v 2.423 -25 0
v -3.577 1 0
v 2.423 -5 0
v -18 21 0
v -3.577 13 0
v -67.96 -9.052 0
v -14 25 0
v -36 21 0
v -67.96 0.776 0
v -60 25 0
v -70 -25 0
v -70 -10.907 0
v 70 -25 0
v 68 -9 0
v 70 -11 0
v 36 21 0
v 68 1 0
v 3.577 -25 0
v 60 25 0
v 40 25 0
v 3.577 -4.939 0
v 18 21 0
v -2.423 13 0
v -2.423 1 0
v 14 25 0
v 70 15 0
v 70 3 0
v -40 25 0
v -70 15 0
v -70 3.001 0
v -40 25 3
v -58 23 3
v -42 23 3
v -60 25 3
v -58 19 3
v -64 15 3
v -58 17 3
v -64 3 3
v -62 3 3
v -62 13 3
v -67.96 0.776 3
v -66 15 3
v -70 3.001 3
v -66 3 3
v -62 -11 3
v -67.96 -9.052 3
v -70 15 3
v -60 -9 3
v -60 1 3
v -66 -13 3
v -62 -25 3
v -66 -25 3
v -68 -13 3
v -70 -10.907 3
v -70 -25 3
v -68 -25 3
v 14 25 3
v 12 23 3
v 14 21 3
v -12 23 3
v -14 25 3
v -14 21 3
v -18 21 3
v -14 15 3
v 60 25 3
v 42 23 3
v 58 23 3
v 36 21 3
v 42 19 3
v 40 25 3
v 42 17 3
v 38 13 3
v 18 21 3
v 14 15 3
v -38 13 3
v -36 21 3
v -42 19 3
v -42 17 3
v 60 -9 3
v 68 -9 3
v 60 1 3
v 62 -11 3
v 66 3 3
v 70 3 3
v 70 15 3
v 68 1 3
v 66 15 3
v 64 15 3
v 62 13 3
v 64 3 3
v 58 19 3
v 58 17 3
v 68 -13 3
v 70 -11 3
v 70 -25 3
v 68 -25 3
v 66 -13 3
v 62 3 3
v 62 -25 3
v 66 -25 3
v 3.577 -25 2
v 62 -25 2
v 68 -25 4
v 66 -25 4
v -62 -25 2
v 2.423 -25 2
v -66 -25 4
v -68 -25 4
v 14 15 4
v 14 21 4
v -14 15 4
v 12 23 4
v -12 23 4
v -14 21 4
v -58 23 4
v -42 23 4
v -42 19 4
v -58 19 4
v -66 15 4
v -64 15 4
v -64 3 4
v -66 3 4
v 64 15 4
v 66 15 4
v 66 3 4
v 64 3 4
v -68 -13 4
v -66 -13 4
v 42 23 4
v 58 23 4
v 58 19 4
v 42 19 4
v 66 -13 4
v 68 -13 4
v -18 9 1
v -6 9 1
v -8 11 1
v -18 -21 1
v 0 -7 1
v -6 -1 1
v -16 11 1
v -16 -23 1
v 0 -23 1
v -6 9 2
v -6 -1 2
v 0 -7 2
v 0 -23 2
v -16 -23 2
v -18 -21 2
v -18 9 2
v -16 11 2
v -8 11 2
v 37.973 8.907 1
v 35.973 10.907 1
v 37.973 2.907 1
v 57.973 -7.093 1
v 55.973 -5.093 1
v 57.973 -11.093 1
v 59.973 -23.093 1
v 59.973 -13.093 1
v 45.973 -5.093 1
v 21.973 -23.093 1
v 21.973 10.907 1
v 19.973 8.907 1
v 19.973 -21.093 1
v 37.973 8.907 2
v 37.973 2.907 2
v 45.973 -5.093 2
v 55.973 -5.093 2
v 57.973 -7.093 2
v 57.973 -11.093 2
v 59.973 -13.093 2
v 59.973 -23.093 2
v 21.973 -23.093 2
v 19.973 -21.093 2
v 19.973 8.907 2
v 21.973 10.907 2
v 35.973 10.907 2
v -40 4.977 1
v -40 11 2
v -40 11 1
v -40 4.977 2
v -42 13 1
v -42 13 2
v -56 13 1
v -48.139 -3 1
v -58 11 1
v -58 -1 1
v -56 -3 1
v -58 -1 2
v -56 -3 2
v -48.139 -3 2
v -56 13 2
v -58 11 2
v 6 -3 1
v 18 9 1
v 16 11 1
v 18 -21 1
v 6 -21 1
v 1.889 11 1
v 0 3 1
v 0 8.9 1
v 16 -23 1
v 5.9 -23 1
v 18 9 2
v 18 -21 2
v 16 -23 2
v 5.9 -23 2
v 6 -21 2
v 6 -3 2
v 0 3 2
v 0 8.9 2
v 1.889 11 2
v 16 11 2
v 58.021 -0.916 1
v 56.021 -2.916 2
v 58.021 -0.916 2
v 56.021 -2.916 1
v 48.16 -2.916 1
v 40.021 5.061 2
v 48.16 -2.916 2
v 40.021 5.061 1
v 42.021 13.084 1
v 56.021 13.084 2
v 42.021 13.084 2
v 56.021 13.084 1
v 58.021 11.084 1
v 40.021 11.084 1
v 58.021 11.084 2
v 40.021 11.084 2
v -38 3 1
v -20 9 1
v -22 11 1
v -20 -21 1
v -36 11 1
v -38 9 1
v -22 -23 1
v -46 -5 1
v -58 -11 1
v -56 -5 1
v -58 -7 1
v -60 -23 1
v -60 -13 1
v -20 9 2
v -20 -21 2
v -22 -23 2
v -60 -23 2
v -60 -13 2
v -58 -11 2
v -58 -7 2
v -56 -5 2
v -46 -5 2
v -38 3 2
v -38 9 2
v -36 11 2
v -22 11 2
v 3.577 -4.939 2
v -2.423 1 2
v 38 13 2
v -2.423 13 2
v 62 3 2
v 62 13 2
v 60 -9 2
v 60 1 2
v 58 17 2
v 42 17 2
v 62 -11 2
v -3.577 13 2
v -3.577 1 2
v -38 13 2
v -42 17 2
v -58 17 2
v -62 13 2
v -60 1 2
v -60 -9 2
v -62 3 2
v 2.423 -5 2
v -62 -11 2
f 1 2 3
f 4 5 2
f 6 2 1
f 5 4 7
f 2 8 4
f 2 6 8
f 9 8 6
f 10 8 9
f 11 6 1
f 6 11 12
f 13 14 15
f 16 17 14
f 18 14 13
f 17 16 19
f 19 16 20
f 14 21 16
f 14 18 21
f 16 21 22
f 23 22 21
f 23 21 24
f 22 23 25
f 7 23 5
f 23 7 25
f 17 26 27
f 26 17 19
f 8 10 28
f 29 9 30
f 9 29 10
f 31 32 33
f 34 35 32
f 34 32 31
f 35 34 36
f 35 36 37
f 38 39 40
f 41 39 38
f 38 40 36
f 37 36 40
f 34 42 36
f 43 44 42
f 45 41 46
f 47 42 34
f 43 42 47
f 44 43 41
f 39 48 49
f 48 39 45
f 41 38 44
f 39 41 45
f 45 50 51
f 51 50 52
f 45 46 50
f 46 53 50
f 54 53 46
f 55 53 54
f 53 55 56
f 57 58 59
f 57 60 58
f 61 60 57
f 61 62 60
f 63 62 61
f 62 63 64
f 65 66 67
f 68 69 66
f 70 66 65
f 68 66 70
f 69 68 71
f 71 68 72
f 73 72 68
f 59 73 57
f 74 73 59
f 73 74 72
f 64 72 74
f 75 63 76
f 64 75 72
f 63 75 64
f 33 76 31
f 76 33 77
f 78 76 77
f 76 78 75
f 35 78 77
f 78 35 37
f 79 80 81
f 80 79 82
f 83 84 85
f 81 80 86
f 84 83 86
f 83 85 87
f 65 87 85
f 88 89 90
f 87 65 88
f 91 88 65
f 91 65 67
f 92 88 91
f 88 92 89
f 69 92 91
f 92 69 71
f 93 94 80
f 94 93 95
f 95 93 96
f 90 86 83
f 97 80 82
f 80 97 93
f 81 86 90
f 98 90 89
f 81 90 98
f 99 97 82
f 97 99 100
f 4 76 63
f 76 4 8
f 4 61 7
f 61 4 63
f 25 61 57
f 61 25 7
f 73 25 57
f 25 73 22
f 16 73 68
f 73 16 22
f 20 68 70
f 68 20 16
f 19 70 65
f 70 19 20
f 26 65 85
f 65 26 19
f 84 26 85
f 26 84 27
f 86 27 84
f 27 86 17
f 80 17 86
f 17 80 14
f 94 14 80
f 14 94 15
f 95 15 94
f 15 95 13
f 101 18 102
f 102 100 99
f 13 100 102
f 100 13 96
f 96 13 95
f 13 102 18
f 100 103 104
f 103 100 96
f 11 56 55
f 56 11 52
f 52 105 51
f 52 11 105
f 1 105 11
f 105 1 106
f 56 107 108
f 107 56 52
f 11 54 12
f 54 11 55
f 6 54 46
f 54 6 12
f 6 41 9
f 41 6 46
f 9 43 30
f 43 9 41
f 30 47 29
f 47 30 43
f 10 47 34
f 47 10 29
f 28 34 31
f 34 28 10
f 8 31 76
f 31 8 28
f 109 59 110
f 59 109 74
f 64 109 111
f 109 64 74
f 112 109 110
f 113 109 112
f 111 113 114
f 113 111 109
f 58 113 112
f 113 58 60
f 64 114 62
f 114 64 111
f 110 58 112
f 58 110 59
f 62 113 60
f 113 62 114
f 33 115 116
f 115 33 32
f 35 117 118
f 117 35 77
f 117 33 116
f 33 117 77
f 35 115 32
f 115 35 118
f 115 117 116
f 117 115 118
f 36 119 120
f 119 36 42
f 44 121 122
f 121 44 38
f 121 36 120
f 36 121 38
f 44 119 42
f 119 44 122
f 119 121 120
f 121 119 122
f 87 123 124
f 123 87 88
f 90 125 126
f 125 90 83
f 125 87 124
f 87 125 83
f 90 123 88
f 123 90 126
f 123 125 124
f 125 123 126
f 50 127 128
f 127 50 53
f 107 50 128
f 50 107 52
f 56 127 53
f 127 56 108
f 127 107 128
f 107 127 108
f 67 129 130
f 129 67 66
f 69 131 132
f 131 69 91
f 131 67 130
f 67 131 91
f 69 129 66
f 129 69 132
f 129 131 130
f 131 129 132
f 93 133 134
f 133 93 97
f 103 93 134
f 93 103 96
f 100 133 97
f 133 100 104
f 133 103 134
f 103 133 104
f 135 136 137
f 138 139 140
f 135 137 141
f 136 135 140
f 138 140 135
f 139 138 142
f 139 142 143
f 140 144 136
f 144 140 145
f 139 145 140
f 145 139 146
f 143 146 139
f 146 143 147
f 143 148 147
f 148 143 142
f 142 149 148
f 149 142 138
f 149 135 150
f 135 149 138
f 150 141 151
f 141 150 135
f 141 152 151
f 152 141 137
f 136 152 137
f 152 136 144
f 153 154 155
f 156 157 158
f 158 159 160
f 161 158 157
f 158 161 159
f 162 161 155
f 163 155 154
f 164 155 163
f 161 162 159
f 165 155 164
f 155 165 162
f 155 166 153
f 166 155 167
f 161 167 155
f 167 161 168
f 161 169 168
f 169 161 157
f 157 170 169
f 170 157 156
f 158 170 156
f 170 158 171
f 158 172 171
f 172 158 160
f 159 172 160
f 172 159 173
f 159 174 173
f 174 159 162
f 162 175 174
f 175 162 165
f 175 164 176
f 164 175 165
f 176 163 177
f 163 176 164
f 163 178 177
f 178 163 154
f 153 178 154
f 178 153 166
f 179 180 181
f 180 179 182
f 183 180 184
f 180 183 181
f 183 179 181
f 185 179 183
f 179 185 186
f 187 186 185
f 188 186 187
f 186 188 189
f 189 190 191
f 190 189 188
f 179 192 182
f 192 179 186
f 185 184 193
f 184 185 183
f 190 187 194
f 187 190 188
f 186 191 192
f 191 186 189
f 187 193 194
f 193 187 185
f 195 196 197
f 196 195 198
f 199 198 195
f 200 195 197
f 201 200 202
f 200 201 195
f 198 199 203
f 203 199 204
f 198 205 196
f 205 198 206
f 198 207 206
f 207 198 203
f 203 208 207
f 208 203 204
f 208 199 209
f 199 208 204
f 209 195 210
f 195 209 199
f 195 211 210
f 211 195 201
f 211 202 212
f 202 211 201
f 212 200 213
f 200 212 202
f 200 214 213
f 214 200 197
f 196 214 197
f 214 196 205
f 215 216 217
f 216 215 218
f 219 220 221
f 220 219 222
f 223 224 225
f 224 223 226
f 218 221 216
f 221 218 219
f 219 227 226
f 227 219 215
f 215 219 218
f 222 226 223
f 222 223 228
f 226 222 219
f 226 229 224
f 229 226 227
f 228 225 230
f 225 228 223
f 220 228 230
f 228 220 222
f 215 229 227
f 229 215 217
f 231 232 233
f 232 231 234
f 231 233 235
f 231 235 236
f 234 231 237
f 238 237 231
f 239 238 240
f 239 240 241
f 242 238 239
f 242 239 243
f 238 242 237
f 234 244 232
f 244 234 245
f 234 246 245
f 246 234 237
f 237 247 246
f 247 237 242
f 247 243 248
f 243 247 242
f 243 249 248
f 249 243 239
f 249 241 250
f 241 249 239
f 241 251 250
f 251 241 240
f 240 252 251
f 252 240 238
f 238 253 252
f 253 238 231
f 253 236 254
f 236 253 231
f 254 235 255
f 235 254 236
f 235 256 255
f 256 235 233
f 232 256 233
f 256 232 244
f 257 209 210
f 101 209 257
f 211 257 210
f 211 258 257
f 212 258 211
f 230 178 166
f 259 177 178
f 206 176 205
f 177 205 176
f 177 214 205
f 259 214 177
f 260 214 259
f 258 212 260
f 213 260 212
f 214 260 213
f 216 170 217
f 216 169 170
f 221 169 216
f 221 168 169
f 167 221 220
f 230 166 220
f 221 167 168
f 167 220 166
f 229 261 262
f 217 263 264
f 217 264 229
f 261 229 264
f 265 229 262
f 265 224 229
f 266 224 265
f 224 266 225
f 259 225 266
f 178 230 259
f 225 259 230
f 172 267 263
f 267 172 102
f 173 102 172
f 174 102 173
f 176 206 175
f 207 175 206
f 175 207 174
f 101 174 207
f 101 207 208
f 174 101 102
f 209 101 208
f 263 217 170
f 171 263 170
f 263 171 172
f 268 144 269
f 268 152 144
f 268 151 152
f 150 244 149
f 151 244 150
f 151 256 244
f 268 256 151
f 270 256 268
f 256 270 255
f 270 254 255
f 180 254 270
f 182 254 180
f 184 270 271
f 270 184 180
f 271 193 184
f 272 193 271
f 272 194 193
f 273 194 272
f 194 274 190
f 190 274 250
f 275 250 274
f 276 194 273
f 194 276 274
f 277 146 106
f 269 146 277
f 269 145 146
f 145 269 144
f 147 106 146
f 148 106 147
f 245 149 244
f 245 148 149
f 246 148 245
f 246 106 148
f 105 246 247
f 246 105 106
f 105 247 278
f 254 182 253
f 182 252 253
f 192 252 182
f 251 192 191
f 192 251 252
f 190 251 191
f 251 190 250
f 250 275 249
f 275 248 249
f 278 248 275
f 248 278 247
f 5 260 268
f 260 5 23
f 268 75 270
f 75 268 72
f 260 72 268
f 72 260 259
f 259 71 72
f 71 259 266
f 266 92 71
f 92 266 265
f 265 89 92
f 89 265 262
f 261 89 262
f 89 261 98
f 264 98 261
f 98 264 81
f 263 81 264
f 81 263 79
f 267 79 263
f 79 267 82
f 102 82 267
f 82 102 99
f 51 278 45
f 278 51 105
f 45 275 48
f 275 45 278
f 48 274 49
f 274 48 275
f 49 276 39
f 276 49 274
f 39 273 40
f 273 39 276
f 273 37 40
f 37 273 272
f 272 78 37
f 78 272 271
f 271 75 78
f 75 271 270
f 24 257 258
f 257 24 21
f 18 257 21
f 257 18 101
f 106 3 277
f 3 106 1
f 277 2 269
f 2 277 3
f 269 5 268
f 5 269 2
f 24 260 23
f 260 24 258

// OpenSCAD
// Module names are of the form poly_<inkscape-path-id>().  As a result,
// you can associate a polygon in this OpenSCAD program with the corresponding
// SVG element in the Inkscape document by looking for the XML element with
// the attribute id="inkscape-path-id".

// fudge value is used to ensure that subtracted solids are a tad taller
// in the z dimension than the polygon being subtracted from.  This helps
// keep the resulting .stl file manifold.
fudge = 0.1;

difference() {
   union() {
      poly_outline(3);
      poly_box2(4);
      poly_box1(4);
      poly_box7(4);
      poly_box4(4);
      poly_box6(4);
      poly_box3(4);
      poly_box5(4);
   }

   translate([0,0,2]) poly_doorinside(3);

   translate([0,0,1]) {
      poly_doordetail4(2);
      poly_doordetail2(2);
      poly_doordetail7(2);
      poly_doordetail3(2);
      poly_doordetail1(2);
      poly_doordetail5(2);
   }

   poly_doorsplit(2);
}


/* MODULES */

module poly_doordetail4(h)
{
  scale([25.4/90, -25.4/90, 1]) union()
  {
    linear_extrude(height=h)
      polygon([[-56.692915,-38.976395],[-63.779525,-31.889775],[-63.779525,74.409485],[-56.692915,81.496085],[-0.000005,81.496085],[-0.000005,24.803135],[-21.259845,3.543295],[-21.259845,-31.889775],[-28.346455,-38.976395]]);
  }
}

module poly_doorinside(h)
{
  scale([25.4/90, -25.4/90, 1]) union()
  {
    linear_extrude(height=h)
      polygon([[-219.685038,88.582685],[-219.685038,38.976385],[-212.598424,31.889755],[-212.598424,-3.543315],[-219.685038,-10.629935],[-219.685038,-46.063005],[-205.511810,-60.236235],[-148.818897,-60.236235],[-134.645665,-46.063005],[134.645665,-46.063005],[148.818895,-60.236235],[205.511805,-60.236235],[219.685035,-46.063005],[219.685035,-10.629935],[212.598425,-3.543315],[212.598425,31.889755],[219.685035,38.976385],[219.685035,88.582685]]);
  }
}

module poly_outline(h)
{
  scale([25.4/90, -25.4/90, 1]) union()
  {
    linear_extrude(height=h)
      polygon([[-248.031495,88.582685],[-248.031495,38.645685],[-240.803775,32.075025],[-240.803775,-2.749435],[-248.031495,-10.634225],[-248.031495,-53.149615],[-212.598424,-88.582685],[-141.732285,-88.582685],[-127.559055,-74.409465],[-63.779525,-74.409465],[-49.606295,-88.582685],[49.606295,-88.582685],[63.779525,-74.409465],[127.559055,-74.409465],[141.732285,-88.582685],[212.598425,-88.582685],[248.031495,-53.149615],[248.031495,-10.629935],[240.944875,-3.543315],[240.944875,31.889755],[248.031495,38.976385],[248.031495,88.582685]]);
  }
}

module poly_box2(h)
{
  scale([25.4/90, -25.4/90, 1]) union()
  {
    linear_extrude(height=h)
      polygon([[-49.606295,-74.409465],[-42.519685,-81.496075],[42.519685,-81.496075],[49.606295,-74.409465],[49.606295,-53.149615],[-49.606295,-53.149615]]);
  }
}

module poly_box1(h)
{
  scale([25.4/90, -25.4/90, 1]) union()
  {
    linear_extrude(height=h)
      polygon([[-205.511810,-81.496075],[-148.818897,-81.496075],[-148.818897,-67.322845],[-205.511810,-67.322845]]);
  }
}

module poly_doordetail2(h)
{
  scale([25.4/90, -25.4/90, 1]) union()
  {
    linear_extrude(height=h)
      polygon([[198.329035,18.047235],[205.415655,25.133845],[205.415655,39.307085],[212.502265,46.393685],[212.502265,81.826785],[77.856595,81.826785],[70.769985,74.740185],[70.769985,-31.559065],[77.856595,-38.645685],[127.462895,-38.645685],[134.549505,-31.559065],[134.549505,-10.299225],[162.895965,18.047235]]);
  }
}

module poly_doorsplit(h)
{
  scale([25.4/90, -25.4/90, 1]) union()
  {
    linear_extrude(height=h)
      polygon([[-14.173225 + 1.5, -46.063005],
               [-14.173225 + 1.5, -3.543315],
               [7.086615 + 1.5, 17.716525],
               [7.086615 + 1.5, 88.582685],
               [14.173225 - 1.5, 88.582685],
               [14.173225 - 1.5, 17.498855],
               [-7.086615 - 1.5, -3.543315],
               [-7.086615 - 1.5, -46.063005]]);
  }
}

module poly_box7(h)
{
  scale([25.4/90, -25.4/90, 1]) union()
  {
    linear_extrude(height=h)
      polygon([[-226.771653,-10.629935],[-226.771653,-53.149615],[-233.858267,-53.149615],[-233.858267,-10.629935]]);
  }
}

module poly_box4(h)
{
  scale([25.4/90, -25.4/90, 1]) union()
  {
    linear_extrude(height=h)
      polygon([[233.858265,-53.149615],[226.771655,-53.149615],[226.771655,-10.629935],[233.858265,-10.629935]]);
  }
}

module poly_box6(h)
{
  scale([25.4/90, -25.4/90, 1]) union()
  {
    linear_extrude(height=h)
      polygon([[-240.944881,88.582685],[-240.944881,46.062985],[-233.858267,46.062985],[-233.858267,88.582685]]);
  }
}

module poly_doordetail7(h)
{
  scale([25.4/90, -25.4/90, 1]) union()
  {
    linear_extrude(height=h)
      polygon([[-205.511810,-10.629935],[-205.511810,-38.976395],[-198.425196,-46.063005],[-148.818897,-46.063005],[-141.732285,-38.976395],[-141.732285,-17.635985],[-170.570586,10.629905],[-198.425196,10.629905],[-205.511810,3.543295]]);
  }
}

module poly_box3(h)
{
  scale([25.4/90, -25.4/90, 1]) union()
  {
    linear_extrude(height=h)
      polygon([[148.818895,-81.496075],[205.511805,-81.496075],[205.511805,-67.322845],[148.818895,-67.322845],[148.818895,-81.496075]]);
  }
}

module poly_doordetail3(h)
{
  scale([25.4/90, -25.4/90, 1]) union()
  {
    linear_extrude(height=h)
      polygon([[-0.000005,-31.535025],[-0.000005,-10.629935],[21.259845,10.629905],[21.259845,74.409485],[20.905085,81.496085],[56.692915,81.496085],[63.779525,74.409485],[63.779525,-31.889775],[56.692915,-38.976395],[6.692235,-38.976395]]);
  }
}

module poly_doordetail1(h)
{
  scale([25.4/90, -25.4/90, 1]) union()
  {
    linear_extrude(height=h)
      polygon([[205.585245,-10.928165],[205.585245,-39.274625],[198.498635,-46.361235],[148.892325,-46.361235],[141.805715,-39.274625],[141.805715,-17.934215],[170.644015,10.331675],[198.498635,10.331675],[205.585245,3.245065]]);
  }
}

module poly_box5(h)
{
  scale([25.4/90, -25.4/90, 1]) union()
  {
    linear_extrude(height=h)
      polygon([[240.944875,46.062985],[240.944875,88.582685],[233.858265,88.582685],[233.858265,46.062985]]);
  }
}

module poly_doordetail5(h)
{
  scale([25.4/90, -25.4/90, 1]) union()
  {
    linear_extrude(height=h)
      polygon([[-198.425196,17.716525],[-205.511810,24.803135],[-205.511810,38.976385],[-212.598424,46.062985],[-212.598424,81.496085],[-77.952755,81.496085],[-70.866145,74.409485],[-70.866145,-31.889775],[-77.952755,-38.976395],[-127.559055,-38.976395],[-134.645665,-31.889775],[-134.645665,-10.629935],[-162.992125,17.716525]]);
  }
}
